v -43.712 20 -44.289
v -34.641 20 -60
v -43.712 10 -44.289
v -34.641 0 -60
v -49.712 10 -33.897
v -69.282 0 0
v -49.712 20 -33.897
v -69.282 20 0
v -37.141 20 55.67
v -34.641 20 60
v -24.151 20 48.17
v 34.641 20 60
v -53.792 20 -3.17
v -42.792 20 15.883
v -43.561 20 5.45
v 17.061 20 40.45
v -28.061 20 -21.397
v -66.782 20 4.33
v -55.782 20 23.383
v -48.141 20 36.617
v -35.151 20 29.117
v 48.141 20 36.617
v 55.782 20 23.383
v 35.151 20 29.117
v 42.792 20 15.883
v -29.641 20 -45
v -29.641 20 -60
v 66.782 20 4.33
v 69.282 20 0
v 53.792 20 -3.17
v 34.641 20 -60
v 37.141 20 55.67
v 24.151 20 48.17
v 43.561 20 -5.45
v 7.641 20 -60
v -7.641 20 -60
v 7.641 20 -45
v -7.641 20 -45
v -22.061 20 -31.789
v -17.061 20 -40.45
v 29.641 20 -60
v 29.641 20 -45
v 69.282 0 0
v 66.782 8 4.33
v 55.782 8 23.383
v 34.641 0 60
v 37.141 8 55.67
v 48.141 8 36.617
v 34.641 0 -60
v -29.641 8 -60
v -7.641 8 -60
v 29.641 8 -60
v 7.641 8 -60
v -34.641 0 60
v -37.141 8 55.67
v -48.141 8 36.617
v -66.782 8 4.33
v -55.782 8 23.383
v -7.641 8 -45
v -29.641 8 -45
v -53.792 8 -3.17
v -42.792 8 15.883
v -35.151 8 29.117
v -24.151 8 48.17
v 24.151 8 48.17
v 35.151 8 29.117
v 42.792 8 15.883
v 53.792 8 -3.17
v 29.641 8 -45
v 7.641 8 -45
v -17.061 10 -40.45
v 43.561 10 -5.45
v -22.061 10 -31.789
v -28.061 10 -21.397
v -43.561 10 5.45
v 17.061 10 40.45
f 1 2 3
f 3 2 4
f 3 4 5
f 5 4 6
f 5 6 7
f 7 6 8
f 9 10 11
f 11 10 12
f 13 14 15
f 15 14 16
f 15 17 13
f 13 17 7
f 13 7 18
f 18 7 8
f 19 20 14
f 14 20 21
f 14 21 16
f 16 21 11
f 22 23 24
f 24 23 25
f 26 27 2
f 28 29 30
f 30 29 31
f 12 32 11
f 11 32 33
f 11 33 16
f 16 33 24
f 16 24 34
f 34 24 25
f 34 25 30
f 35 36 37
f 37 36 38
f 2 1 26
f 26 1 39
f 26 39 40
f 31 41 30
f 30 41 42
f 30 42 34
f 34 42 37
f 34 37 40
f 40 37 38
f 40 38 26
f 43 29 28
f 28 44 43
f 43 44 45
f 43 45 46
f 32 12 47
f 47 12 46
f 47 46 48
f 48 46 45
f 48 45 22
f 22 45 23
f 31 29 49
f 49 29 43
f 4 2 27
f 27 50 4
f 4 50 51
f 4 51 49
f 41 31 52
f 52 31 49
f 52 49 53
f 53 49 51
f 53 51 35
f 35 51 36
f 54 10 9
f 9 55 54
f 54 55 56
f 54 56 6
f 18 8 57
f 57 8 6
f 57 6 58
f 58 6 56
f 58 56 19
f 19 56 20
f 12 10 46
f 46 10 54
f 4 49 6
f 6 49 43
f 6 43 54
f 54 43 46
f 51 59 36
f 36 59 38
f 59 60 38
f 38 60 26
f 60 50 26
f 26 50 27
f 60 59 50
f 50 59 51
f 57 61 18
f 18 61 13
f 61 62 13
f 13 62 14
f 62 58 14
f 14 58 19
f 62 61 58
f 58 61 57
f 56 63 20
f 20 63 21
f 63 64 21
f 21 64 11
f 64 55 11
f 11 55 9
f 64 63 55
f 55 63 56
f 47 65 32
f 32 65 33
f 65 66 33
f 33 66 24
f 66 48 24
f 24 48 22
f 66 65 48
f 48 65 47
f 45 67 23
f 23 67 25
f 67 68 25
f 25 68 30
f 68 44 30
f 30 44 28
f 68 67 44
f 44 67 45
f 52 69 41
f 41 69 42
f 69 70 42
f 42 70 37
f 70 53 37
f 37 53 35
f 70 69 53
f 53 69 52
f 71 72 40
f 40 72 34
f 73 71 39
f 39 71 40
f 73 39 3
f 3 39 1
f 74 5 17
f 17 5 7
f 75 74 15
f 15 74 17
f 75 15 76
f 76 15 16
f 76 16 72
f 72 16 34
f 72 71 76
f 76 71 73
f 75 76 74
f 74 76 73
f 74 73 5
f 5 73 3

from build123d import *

# Parameters (mm, degrees)
BOSS_EXTRUDE1_DEPTH     = 20
SKETCH2_W               = 22
SKETCH2_H               = 15
CUT_EXTRUDE1_DEPTH      = 12
CUT_EXTRUDE2_DEPTH      = 94.808315196
CUT_EXTRUDE2_DEPTH_BACK = 10


with BuildPart() as part:
    # Sketch1 → Boss-Extrude1 (new body)
    with BuildSketch(Plane(origin=(0, 0, 0), x_dir=(1, 0, 0), z_dir=(0, 1, 0))):
        Polygon((69.282032303, 0), (34.641016151, 60), (-34.641016151, 60), (-69.282032303, 0), (-34.641016151, -60), (34.641016151, -60), align=None)
    extrude(amount=BOSS_EXTRUDE1_DEPTH)

    # Sketch2 → Cut-Extrude1 (cut)
    with BuildSketch(Plane(origin=(0, 20, 0), x_dir=(1, 0, 0), z_dir=(0, 1, 0))):
        with Locations((-18.641016151, 52.5)):
            Rectangle(SKETCH2_W, SKETCH2_H)
        with Locations((18.641016151, 52.5)):
            Rectangle(SKETCH2_W, SKETCH2_H)
        Polygon((66.782032303, -4.330127019), (53.791651246, 3.169872981), (42.791651246, -15.882685902), (55.782032303, -23.382685902), align=None)
        Polygon((48.141016151, -36.617314098), (35.150635095, -29.117314098), (24.150635095, -48.169872981), (37.141016151, -55.669872981), align=None)
        Polygon((-37.141016151, -55.669872981), (-24.150635095, -48.169872981), (-35.150635095, -29.117314098), (-48.141016151, -36.617314098), align=None)
        Polygon((-55.782032303, -23.382685902), (-42.791651246, -15.882685902), (-53.791651246, 3.169872981), (-66.782032303, -4.330127019), align=None)
    extrude(amount=-CUT_EXTRUDE1_DEPTH, mode=Mode.SUBTRACT)

    # Sketch3 → Cut-Extrude2 (cut, two sides: drawn at the far end of the back side and taken through both)
    with BuildSketch(Plane(origin=(0, 20, 0), x_dir=(1, 0, 0), z_dir=(0, 1, 0)).offset(-CUT_EXTRUDE2_DEPTH_BACK)):
        Polygon((-43.560889132, -5.4496732), (17.060889132, -40.4496732), (43.560889132, 5.4496732), (-17.060889132, 40.4496732), align=None)
        Polygon((-22.060889132, 31.789419162), (-28.060889132, 21.397114317), (-49.711524227, 33.897114317), (-43.711524227, 44.289419162), align=None)
    extrude(amount=CUT_EXTRUDE2_DEPTH + CUT_EXTRUDE2_DEPTH_BACK, mode=Mode.SUBTRACT)


solid = part.part
